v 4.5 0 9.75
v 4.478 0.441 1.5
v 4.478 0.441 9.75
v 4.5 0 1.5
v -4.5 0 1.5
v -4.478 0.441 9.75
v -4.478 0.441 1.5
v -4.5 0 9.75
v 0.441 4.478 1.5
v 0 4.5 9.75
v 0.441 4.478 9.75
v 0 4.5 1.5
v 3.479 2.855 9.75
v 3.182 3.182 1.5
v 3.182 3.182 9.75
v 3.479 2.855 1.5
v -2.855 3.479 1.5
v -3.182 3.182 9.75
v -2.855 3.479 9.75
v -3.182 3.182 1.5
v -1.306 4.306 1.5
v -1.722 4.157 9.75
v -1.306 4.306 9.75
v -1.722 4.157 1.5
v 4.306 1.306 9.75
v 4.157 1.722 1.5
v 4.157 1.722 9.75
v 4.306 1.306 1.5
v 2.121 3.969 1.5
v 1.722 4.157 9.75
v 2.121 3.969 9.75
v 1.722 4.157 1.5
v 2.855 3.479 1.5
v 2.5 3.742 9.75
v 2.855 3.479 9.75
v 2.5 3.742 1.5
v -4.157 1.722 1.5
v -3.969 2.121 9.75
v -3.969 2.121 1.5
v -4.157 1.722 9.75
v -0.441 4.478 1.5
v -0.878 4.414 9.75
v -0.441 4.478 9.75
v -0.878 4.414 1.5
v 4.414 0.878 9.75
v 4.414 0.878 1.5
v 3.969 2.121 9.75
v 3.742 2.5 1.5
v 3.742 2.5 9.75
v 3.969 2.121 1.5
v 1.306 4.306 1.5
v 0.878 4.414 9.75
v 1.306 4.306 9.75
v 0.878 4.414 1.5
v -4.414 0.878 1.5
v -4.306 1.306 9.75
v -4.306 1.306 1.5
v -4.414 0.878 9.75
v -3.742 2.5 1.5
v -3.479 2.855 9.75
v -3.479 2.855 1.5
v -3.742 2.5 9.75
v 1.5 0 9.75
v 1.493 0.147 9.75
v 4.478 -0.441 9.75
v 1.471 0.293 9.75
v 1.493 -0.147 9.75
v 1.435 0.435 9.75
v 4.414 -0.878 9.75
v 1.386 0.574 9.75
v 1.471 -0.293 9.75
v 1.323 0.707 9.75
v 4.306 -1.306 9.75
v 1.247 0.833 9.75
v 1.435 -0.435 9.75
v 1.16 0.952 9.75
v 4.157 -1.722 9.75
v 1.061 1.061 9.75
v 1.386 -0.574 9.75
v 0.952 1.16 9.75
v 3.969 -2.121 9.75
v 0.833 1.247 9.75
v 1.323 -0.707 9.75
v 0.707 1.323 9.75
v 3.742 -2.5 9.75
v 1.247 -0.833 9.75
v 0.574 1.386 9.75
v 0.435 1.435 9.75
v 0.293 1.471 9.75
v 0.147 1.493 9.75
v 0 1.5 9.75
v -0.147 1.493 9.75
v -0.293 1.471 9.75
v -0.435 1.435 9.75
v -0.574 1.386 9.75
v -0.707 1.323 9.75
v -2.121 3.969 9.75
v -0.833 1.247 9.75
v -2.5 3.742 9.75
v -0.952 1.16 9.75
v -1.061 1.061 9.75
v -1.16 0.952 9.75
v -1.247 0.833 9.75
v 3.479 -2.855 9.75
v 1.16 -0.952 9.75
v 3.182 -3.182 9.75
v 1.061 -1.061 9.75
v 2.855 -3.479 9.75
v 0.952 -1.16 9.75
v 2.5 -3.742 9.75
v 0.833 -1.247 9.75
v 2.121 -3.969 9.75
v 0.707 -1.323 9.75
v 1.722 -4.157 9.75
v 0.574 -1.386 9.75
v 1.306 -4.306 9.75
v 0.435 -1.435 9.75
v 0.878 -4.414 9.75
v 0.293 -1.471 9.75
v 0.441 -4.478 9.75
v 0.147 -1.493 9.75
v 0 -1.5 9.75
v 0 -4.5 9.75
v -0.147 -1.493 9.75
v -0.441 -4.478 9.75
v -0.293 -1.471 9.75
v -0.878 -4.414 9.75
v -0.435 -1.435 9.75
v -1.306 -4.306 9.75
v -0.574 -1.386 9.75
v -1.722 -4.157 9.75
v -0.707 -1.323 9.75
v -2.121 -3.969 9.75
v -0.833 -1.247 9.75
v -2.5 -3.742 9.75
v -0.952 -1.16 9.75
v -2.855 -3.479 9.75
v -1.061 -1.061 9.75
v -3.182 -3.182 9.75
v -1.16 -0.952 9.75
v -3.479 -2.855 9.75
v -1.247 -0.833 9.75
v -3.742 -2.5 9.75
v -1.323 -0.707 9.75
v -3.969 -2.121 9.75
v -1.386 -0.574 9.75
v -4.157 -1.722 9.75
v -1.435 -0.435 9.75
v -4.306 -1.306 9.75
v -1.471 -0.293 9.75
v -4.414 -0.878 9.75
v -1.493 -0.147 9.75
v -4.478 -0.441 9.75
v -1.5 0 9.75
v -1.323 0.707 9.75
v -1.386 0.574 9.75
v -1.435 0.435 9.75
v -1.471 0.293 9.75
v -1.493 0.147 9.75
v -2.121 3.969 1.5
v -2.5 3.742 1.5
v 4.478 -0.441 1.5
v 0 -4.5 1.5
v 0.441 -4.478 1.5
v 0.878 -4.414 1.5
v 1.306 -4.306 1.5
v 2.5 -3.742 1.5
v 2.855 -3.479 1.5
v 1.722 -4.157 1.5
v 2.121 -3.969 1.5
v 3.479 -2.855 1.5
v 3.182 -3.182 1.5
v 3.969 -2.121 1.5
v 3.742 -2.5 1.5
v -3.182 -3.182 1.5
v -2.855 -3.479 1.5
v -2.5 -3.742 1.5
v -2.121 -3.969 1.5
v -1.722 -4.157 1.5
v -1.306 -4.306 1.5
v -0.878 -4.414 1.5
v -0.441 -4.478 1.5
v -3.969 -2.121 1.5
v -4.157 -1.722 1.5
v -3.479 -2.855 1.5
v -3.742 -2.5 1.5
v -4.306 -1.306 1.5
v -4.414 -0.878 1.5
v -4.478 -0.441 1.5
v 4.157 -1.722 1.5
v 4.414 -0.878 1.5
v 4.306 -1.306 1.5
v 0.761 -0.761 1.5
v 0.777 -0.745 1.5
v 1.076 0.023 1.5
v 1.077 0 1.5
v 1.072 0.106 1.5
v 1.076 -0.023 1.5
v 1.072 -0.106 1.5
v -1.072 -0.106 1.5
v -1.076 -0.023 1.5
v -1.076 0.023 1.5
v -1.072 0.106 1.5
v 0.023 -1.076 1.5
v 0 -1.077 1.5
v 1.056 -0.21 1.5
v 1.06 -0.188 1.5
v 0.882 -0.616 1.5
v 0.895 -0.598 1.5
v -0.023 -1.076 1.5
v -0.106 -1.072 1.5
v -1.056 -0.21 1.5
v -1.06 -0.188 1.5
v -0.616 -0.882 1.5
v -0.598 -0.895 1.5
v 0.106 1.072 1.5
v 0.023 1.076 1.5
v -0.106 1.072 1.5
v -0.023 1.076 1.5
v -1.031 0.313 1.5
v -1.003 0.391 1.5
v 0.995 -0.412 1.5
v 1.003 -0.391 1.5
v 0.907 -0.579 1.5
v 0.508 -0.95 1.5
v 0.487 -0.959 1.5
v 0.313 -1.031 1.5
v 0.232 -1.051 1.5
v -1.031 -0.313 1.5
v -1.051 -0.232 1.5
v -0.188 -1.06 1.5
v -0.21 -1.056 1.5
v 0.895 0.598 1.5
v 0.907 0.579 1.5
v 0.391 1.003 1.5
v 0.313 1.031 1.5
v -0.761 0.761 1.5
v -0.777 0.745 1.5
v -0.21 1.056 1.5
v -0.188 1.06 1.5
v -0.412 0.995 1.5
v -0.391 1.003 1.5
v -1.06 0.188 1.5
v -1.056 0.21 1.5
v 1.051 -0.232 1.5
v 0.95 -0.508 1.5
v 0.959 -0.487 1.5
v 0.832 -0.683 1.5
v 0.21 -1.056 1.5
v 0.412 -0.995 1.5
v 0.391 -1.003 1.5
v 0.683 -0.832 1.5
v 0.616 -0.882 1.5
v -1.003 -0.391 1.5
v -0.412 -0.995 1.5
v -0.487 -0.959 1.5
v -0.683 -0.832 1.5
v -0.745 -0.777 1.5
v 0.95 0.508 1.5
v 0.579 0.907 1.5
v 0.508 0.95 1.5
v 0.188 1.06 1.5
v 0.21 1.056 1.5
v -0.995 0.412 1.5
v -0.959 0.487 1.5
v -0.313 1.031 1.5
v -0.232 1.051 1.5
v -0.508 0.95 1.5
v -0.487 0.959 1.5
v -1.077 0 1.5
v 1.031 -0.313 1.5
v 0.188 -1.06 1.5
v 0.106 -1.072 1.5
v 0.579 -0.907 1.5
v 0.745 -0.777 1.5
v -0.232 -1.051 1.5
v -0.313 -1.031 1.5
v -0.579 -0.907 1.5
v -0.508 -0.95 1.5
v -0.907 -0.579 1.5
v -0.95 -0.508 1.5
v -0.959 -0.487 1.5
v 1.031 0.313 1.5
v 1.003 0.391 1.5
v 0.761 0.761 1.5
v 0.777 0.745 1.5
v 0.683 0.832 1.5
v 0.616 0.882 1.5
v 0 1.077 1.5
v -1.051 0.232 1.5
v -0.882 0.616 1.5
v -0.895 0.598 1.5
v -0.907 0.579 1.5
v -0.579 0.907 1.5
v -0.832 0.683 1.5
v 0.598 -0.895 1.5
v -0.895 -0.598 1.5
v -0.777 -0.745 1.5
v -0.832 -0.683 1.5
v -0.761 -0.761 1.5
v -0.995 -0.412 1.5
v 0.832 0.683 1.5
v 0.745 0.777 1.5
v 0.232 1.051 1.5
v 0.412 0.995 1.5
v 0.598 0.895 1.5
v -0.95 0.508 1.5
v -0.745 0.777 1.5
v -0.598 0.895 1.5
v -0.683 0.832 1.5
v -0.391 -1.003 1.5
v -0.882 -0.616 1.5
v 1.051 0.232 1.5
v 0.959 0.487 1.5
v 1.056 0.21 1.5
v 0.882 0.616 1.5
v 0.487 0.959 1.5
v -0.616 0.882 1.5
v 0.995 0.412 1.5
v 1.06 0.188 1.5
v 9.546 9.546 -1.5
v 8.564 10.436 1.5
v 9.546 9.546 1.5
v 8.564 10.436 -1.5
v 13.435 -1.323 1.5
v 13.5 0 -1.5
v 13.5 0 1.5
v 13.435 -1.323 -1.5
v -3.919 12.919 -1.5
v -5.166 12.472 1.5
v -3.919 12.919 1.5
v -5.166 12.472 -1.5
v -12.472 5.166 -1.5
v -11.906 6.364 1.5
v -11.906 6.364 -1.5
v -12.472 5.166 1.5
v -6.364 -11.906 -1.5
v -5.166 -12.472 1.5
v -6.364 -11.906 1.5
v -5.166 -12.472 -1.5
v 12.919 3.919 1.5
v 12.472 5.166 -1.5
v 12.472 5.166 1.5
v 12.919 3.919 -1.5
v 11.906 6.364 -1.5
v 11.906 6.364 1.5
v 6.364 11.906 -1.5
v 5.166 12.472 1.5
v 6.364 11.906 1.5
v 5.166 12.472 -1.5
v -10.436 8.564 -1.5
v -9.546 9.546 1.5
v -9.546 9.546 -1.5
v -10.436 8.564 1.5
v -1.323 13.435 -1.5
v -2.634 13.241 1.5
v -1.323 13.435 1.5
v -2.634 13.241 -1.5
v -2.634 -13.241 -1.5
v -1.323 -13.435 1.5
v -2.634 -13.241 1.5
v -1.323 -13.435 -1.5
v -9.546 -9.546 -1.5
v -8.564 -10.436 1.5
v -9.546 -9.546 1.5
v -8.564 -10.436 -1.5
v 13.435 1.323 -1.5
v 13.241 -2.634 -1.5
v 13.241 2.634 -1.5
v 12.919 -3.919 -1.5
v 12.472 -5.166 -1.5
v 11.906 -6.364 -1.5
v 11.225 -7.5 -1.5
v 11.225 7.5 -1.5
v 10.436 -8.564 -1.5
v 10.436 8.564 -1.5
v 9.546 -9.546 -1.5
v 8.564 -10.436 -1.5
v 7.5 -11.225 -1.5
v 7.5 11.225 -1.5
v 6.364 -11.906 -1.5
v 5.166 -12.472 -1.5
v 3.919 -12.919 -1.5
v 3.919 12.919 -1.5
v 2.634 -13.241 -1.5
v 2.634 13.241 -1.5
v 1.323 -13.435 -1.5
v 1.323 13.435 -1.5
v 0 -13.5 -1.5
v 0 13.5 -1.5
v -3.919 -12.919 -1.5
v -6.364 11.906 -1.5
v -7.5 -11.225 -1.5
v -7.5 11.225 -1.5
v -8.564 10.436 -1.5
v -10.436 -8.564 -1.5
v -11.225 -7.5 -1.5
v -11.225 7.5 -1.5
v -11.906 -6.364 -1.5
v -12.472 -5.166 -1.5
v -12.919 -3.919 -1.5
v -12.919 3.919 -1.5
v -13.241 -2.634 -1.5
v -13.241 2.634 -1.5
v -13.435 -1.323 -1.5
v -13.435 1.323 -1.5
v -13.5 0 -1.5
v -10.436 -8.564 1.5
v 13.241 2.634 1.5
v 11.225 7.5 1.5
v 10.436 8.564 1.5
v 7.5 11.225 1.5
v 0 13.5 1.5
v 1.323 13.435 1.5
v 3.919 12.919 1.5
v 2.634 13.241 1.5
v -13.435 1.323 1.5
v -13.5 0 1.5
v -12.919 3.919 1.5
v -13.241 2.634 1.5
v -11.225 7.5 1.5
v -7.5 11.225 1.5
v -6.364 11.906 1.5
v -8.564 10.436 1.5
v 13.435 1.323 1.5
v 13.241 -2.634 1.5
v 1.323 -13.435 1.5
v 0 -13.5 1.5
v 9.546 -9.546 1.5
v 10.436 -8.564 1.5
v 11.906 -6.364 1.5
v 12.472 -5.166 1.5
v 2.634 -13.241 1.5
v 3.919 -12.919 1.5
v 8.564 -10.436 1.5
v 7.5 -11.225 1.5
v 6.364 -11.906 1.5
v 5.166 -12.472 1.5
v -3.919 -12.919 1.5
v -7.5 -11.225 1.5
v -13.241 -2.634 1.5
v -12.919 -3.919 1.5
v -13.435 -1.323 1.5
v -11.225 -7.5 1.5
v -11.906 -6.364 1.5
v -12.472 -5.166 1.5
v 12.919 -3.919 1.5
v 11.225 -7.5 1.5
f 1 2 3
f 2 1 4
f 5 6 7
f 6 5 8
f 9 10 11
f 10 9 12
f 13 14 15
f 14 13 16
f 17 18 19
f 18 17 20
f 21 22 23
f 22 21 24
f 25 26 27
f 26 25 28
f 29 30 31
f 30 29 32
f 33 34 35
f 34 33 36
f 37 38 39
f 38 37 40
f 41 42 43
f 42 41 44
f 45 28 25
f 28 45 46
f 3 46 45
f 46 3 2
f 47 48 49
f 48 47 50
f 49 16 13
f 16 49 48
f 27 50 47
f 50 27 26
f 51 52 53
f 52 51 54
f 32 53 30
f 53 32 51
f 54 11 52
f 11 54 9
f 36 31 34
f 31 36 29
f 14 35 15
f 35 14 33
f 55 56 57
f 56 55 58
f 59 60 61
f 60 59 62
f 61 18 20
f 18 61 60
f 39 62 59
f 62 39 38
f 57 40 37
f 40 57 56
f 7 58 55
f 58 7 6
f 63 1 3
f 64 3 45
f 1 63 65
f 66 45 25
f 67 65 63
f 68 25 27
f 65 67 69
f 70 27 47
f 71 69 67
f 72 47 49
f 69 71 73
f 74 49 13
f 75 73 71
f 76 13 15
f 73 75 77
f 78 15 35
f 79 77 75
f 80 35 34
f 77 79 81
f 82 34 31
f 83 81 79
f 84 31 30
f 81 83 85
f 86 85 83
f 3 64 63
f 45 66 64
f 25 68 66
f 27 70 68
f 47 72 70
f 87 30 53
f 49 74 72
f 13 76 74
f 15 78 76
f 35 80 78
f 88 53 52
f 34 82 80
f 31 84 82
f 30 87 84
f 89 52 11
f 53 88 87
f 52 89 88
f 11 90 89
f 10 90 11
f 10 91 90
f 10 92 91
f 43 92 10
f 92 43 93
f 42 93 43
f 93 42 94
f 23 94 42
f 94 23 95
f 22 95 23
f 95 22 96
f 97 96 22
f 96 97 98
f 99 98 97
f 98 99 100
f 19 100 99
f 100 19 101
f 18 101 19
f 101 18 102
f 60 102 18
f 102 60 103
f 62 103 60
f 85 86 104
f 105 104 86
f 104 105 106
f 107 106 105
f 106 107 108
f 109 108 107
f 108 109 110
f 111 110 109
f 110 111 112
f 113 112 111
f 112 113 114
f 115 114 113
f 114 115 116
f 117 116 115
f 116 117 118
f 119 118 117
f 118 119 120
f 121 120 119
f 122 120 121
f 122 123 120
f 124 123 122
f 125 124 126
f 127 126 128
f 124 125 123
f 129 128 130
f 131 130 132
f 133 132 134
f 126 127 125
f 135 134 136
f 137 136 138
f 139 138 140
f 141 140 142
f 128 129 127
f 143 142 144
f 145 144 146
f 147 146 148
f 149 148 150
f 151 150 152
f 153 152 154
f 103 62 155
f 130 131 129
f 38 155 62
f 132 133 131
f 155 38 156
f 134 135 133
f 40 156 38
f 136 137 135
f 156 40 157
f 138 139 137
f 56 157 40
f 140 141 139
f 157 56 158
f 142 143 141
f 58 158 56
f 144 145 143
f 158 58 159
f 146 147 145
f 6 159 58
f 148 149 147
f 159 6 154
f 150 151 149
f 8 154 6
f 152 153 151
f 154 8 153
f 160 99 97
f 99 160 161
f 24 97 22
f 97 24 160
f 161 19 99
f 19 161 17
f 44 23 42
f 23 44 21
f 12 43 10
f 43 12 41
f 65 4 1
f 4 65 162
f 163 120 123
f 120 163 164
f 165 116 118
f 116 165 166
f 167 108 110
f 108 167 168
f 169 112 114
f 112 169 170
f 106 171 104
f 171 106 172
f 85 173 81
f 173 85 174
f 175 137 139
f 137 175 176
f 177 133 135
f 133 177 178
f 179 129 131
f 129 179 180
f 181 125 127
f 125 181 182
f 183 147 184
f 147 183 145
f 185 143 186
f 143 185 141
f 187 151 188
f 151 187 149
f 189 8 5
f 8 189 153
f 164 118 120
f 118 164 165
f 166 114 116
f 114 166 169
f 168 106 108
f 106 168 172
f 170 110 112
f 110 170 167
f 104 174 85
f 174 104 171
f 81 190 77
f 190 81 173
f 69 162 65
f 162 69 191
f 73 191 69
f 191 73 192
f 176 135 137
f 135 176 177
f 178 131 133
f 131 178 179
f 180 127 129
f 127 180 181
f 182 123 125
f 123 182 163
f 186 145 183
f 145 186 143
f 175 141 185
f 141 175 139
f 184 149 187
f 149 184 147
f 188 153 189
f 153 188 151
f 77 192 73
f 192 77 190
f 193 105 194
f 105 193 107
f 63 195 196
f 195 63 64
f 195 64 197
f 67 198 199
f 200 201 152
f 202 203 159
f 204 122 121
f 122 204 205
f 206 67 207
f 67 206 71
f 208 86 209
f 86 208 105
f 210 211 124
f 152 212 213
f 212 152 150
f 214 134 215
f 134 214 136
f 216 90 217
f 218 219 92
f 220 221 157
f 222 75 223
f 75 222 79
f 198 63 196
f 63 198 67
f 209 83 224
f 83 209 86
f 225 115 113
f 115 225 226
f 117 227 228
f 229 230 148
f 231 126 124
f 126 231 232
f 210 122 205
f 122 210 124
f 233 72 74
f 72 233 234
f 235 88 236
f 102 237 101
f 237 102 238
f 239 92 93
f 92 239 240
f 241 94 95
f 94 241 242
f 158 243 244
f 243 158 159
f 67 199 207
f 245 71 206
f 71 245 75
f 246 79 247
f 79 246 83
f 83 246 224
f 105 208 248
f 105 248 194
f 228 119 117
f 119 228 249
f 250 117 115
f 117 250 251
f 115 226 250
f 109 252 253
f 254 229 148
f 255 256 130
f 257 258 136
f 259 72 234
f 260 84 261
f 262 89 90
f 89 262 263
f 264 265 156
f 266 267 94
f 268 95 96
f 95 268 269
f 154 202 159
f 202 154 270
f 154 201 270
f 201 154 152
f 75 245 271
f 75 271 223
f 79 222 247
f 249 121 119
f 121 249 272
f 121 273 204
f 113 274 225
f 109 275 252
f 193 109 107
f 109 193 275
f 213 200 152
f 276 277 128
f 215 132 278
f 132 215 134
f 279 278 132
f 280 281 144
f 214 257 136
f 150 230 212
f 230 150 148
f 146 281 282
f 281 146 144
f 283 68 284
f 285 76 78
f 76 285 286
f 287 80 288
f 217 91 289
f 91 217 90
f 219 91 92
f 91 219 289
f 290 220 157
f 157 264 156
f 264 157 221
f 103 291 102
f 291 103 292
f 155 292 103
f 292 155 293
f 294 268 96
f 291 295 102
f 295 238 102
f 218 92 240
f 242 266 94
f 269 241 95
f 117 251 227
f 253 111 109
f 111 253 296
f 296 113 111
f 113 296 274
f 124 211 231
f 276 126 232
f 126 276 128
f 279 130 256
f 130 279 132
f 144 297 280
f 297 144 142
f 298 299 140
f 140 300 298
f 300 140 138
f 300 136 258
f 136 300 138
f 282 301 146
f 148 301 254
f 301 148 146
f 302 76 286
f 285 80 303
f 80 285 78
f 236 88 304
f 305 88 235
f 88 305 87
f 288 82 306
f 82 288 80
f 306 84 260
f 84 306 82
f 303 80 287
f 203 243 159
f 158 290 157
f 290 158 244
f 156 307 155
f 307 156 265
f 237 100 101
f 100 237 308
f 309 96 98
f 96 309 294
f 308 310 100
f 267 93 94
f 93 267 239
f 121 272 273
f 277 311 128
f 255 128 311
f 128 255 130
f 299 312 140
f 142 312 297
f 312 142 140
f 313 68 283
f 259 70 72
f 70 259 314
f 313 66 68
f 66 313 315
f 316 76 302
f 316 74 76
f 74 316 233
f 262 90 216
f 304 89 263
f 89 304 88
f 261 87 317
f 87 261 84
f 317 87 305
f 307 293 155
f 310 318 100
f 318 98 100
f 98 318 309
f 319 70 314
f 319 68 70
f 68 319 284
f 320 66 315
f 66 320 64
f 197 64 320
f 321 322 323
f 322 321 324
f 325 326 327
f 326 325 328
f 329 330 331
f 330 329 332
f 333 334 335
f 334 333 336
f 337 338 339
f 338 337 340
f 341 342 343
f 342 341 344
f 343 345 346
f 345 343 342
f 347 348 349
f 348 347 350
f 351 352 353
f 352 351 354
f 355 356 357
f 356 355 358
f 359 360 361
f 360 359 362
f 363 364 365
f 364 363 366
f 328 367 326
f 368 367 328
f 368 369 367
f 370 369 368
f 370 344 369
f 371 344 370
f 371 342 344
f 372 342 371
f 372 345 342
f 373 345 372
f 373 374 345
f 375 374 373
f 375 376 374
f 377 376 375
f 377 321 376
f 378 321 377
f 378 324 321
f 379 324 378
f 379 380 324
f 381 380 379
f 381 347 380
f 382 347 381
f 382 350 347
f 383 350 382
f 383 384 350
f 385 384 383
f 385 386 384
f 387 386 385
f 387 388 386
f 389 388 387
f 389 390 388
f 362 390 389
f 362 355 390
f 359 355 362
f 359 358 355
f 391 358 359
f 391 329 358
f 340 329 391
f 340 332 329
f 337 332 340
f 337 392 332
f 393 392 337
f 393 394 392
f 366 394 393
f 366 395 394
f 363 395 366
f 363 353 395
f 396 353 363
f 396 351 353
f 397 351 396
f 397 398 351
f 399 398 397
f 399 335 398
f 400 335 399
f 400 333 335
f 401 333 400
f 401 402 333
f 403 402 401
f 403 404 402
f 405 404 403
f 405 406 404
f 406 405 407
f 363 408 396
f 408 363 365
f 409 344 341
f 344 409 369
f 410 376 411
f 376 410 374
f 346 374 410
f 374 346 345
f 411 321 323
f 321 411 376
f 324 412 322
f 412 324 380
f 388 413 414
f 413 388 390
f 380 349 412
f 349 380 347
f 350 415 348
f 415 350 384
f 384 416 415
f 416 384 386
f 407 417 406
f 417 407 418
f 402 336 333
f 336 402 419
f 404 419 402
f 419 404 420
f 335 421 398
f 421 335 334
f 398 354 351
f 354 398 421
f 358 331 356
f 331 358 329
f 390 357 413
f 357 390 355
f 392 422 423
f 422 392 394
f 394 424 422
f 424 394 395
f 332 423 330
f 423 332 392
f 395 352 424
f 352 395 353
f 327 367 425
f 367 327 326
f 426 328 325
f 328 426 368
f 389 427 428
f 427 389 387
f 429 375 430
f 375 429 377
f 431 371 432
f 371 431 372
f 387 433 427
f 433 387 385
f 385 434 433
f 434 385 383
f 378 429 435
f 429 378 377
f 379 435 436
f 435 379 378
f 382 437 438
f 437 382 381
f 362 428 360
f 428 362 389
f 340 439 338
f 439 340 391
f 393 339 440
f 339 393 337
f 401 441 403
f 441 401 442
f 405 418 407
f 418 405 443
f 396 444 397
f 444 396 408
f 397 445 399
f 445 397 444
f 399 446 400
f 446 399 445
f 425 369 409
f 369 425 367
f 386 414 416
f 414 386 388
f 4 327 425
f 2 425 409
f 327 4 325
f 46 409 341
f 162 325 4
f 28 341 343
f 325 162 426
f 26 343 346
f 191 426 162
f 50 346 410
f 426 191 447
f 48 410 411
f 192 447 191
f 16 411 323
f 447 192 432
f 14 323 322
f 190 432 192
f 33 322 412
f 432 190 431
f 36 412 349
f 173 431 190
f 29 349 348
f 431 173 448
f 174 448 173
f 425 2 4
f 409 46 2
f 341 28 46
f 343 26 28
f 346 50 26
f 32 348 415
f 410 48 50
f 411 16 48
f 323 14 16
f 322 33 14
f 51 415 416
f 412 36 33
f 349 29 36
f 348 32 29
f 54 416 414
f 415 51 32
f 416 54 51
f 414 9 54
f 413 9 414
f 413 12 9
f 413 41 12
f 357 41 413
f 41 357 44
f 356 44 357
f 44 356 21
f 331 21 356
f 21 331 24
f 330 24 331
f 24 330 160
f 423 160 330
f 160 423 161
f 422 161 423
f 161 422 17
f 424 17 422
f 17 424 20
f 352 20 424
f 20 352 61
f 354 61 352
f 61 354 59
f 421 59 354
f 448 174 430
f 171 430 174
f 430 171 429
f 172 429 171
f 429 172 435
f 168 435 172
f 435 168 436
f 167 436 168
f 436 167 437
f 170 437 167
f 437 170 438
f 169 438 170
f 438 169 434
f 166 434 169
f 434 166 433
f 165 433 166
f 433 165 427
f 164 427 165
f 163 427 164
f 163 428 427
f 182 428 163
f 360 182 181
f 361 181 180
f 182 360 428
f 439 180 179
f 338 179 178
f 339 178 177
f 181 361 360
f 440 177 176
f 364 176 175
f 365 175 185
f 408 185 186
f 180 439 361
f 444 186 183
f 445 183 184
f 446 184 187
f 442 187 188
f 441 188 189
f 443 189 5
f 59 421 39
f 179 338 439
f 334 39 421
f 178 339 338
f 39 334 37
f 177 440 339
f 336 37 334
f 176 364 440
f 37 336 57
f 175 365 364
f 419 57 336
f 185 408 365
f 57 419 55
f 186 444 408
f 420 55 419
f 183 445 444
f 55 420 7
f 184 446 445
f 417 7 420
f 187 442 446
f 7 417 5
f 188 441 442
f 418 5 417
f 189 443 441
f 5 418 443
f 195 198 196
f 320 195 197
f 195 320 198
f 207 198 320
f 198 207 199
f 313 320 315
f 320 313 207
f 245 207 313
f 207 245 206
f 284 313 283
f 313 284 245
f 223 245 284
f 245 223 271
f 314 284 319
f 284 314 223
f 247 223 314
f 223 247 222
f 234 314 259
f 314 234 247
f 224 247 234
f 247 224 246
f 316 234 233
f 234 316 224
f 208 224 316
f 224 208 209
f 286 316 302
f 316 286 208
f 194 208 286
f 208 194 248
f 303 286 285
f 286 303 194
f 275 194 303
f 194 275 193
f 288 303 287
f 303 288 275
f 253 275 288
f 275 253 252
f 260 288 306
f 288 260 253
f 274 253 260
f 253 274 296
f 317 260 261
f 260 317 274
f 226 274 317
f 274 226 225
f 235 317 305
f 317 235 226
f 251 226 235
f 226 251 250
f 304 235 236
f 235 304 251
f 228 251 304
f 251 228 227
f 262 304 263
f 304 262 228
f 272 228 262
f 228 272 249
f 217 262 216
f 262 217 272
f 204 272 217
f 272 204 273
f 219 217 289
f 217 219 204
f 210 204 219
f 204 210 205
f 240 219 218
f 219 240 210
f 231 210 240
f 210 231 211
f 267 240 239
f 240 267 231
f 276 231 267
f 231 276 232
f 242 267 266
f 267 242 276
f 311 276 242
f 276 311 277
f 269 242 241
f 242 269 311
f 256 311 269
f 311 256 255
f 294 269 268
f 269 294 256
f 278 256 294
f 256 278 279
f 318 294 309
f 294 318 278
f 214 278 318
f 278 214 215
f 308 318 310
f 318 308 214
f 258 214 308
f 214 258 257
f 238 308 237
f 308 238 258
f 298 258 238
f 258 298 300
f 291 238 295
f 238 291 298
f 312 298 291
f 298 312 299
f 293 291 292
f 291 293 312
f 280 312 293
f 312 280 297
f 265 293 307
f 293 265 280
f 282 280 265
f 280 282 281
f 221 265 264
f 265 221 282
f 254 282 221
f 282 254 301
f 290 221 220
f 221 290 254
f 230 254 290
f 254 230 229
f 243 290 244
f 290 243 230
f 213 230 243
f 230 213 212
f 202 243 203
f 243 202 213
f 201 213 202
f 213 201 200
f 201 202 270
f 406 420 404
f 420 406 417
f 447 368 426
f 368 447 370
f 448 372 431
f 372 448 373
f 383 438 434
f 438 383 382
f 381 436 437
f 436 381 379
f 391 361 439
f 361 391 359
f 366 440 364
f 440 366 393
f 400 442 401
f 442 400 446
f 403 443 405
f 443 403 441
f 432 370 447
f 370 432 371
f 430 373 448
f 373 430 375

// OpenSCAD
// Knob for CW key.
// Use M4 screw to mount

$fn=64;
cylinder(h=3.0, r1=13.5, r2=13.5, center=true);
difference() {
  cylinder(h=9.75, r1=4.5, r2=4.5, center=false);
  cylinder(h=9.75, r2=1.5, r2=1.5);
}
